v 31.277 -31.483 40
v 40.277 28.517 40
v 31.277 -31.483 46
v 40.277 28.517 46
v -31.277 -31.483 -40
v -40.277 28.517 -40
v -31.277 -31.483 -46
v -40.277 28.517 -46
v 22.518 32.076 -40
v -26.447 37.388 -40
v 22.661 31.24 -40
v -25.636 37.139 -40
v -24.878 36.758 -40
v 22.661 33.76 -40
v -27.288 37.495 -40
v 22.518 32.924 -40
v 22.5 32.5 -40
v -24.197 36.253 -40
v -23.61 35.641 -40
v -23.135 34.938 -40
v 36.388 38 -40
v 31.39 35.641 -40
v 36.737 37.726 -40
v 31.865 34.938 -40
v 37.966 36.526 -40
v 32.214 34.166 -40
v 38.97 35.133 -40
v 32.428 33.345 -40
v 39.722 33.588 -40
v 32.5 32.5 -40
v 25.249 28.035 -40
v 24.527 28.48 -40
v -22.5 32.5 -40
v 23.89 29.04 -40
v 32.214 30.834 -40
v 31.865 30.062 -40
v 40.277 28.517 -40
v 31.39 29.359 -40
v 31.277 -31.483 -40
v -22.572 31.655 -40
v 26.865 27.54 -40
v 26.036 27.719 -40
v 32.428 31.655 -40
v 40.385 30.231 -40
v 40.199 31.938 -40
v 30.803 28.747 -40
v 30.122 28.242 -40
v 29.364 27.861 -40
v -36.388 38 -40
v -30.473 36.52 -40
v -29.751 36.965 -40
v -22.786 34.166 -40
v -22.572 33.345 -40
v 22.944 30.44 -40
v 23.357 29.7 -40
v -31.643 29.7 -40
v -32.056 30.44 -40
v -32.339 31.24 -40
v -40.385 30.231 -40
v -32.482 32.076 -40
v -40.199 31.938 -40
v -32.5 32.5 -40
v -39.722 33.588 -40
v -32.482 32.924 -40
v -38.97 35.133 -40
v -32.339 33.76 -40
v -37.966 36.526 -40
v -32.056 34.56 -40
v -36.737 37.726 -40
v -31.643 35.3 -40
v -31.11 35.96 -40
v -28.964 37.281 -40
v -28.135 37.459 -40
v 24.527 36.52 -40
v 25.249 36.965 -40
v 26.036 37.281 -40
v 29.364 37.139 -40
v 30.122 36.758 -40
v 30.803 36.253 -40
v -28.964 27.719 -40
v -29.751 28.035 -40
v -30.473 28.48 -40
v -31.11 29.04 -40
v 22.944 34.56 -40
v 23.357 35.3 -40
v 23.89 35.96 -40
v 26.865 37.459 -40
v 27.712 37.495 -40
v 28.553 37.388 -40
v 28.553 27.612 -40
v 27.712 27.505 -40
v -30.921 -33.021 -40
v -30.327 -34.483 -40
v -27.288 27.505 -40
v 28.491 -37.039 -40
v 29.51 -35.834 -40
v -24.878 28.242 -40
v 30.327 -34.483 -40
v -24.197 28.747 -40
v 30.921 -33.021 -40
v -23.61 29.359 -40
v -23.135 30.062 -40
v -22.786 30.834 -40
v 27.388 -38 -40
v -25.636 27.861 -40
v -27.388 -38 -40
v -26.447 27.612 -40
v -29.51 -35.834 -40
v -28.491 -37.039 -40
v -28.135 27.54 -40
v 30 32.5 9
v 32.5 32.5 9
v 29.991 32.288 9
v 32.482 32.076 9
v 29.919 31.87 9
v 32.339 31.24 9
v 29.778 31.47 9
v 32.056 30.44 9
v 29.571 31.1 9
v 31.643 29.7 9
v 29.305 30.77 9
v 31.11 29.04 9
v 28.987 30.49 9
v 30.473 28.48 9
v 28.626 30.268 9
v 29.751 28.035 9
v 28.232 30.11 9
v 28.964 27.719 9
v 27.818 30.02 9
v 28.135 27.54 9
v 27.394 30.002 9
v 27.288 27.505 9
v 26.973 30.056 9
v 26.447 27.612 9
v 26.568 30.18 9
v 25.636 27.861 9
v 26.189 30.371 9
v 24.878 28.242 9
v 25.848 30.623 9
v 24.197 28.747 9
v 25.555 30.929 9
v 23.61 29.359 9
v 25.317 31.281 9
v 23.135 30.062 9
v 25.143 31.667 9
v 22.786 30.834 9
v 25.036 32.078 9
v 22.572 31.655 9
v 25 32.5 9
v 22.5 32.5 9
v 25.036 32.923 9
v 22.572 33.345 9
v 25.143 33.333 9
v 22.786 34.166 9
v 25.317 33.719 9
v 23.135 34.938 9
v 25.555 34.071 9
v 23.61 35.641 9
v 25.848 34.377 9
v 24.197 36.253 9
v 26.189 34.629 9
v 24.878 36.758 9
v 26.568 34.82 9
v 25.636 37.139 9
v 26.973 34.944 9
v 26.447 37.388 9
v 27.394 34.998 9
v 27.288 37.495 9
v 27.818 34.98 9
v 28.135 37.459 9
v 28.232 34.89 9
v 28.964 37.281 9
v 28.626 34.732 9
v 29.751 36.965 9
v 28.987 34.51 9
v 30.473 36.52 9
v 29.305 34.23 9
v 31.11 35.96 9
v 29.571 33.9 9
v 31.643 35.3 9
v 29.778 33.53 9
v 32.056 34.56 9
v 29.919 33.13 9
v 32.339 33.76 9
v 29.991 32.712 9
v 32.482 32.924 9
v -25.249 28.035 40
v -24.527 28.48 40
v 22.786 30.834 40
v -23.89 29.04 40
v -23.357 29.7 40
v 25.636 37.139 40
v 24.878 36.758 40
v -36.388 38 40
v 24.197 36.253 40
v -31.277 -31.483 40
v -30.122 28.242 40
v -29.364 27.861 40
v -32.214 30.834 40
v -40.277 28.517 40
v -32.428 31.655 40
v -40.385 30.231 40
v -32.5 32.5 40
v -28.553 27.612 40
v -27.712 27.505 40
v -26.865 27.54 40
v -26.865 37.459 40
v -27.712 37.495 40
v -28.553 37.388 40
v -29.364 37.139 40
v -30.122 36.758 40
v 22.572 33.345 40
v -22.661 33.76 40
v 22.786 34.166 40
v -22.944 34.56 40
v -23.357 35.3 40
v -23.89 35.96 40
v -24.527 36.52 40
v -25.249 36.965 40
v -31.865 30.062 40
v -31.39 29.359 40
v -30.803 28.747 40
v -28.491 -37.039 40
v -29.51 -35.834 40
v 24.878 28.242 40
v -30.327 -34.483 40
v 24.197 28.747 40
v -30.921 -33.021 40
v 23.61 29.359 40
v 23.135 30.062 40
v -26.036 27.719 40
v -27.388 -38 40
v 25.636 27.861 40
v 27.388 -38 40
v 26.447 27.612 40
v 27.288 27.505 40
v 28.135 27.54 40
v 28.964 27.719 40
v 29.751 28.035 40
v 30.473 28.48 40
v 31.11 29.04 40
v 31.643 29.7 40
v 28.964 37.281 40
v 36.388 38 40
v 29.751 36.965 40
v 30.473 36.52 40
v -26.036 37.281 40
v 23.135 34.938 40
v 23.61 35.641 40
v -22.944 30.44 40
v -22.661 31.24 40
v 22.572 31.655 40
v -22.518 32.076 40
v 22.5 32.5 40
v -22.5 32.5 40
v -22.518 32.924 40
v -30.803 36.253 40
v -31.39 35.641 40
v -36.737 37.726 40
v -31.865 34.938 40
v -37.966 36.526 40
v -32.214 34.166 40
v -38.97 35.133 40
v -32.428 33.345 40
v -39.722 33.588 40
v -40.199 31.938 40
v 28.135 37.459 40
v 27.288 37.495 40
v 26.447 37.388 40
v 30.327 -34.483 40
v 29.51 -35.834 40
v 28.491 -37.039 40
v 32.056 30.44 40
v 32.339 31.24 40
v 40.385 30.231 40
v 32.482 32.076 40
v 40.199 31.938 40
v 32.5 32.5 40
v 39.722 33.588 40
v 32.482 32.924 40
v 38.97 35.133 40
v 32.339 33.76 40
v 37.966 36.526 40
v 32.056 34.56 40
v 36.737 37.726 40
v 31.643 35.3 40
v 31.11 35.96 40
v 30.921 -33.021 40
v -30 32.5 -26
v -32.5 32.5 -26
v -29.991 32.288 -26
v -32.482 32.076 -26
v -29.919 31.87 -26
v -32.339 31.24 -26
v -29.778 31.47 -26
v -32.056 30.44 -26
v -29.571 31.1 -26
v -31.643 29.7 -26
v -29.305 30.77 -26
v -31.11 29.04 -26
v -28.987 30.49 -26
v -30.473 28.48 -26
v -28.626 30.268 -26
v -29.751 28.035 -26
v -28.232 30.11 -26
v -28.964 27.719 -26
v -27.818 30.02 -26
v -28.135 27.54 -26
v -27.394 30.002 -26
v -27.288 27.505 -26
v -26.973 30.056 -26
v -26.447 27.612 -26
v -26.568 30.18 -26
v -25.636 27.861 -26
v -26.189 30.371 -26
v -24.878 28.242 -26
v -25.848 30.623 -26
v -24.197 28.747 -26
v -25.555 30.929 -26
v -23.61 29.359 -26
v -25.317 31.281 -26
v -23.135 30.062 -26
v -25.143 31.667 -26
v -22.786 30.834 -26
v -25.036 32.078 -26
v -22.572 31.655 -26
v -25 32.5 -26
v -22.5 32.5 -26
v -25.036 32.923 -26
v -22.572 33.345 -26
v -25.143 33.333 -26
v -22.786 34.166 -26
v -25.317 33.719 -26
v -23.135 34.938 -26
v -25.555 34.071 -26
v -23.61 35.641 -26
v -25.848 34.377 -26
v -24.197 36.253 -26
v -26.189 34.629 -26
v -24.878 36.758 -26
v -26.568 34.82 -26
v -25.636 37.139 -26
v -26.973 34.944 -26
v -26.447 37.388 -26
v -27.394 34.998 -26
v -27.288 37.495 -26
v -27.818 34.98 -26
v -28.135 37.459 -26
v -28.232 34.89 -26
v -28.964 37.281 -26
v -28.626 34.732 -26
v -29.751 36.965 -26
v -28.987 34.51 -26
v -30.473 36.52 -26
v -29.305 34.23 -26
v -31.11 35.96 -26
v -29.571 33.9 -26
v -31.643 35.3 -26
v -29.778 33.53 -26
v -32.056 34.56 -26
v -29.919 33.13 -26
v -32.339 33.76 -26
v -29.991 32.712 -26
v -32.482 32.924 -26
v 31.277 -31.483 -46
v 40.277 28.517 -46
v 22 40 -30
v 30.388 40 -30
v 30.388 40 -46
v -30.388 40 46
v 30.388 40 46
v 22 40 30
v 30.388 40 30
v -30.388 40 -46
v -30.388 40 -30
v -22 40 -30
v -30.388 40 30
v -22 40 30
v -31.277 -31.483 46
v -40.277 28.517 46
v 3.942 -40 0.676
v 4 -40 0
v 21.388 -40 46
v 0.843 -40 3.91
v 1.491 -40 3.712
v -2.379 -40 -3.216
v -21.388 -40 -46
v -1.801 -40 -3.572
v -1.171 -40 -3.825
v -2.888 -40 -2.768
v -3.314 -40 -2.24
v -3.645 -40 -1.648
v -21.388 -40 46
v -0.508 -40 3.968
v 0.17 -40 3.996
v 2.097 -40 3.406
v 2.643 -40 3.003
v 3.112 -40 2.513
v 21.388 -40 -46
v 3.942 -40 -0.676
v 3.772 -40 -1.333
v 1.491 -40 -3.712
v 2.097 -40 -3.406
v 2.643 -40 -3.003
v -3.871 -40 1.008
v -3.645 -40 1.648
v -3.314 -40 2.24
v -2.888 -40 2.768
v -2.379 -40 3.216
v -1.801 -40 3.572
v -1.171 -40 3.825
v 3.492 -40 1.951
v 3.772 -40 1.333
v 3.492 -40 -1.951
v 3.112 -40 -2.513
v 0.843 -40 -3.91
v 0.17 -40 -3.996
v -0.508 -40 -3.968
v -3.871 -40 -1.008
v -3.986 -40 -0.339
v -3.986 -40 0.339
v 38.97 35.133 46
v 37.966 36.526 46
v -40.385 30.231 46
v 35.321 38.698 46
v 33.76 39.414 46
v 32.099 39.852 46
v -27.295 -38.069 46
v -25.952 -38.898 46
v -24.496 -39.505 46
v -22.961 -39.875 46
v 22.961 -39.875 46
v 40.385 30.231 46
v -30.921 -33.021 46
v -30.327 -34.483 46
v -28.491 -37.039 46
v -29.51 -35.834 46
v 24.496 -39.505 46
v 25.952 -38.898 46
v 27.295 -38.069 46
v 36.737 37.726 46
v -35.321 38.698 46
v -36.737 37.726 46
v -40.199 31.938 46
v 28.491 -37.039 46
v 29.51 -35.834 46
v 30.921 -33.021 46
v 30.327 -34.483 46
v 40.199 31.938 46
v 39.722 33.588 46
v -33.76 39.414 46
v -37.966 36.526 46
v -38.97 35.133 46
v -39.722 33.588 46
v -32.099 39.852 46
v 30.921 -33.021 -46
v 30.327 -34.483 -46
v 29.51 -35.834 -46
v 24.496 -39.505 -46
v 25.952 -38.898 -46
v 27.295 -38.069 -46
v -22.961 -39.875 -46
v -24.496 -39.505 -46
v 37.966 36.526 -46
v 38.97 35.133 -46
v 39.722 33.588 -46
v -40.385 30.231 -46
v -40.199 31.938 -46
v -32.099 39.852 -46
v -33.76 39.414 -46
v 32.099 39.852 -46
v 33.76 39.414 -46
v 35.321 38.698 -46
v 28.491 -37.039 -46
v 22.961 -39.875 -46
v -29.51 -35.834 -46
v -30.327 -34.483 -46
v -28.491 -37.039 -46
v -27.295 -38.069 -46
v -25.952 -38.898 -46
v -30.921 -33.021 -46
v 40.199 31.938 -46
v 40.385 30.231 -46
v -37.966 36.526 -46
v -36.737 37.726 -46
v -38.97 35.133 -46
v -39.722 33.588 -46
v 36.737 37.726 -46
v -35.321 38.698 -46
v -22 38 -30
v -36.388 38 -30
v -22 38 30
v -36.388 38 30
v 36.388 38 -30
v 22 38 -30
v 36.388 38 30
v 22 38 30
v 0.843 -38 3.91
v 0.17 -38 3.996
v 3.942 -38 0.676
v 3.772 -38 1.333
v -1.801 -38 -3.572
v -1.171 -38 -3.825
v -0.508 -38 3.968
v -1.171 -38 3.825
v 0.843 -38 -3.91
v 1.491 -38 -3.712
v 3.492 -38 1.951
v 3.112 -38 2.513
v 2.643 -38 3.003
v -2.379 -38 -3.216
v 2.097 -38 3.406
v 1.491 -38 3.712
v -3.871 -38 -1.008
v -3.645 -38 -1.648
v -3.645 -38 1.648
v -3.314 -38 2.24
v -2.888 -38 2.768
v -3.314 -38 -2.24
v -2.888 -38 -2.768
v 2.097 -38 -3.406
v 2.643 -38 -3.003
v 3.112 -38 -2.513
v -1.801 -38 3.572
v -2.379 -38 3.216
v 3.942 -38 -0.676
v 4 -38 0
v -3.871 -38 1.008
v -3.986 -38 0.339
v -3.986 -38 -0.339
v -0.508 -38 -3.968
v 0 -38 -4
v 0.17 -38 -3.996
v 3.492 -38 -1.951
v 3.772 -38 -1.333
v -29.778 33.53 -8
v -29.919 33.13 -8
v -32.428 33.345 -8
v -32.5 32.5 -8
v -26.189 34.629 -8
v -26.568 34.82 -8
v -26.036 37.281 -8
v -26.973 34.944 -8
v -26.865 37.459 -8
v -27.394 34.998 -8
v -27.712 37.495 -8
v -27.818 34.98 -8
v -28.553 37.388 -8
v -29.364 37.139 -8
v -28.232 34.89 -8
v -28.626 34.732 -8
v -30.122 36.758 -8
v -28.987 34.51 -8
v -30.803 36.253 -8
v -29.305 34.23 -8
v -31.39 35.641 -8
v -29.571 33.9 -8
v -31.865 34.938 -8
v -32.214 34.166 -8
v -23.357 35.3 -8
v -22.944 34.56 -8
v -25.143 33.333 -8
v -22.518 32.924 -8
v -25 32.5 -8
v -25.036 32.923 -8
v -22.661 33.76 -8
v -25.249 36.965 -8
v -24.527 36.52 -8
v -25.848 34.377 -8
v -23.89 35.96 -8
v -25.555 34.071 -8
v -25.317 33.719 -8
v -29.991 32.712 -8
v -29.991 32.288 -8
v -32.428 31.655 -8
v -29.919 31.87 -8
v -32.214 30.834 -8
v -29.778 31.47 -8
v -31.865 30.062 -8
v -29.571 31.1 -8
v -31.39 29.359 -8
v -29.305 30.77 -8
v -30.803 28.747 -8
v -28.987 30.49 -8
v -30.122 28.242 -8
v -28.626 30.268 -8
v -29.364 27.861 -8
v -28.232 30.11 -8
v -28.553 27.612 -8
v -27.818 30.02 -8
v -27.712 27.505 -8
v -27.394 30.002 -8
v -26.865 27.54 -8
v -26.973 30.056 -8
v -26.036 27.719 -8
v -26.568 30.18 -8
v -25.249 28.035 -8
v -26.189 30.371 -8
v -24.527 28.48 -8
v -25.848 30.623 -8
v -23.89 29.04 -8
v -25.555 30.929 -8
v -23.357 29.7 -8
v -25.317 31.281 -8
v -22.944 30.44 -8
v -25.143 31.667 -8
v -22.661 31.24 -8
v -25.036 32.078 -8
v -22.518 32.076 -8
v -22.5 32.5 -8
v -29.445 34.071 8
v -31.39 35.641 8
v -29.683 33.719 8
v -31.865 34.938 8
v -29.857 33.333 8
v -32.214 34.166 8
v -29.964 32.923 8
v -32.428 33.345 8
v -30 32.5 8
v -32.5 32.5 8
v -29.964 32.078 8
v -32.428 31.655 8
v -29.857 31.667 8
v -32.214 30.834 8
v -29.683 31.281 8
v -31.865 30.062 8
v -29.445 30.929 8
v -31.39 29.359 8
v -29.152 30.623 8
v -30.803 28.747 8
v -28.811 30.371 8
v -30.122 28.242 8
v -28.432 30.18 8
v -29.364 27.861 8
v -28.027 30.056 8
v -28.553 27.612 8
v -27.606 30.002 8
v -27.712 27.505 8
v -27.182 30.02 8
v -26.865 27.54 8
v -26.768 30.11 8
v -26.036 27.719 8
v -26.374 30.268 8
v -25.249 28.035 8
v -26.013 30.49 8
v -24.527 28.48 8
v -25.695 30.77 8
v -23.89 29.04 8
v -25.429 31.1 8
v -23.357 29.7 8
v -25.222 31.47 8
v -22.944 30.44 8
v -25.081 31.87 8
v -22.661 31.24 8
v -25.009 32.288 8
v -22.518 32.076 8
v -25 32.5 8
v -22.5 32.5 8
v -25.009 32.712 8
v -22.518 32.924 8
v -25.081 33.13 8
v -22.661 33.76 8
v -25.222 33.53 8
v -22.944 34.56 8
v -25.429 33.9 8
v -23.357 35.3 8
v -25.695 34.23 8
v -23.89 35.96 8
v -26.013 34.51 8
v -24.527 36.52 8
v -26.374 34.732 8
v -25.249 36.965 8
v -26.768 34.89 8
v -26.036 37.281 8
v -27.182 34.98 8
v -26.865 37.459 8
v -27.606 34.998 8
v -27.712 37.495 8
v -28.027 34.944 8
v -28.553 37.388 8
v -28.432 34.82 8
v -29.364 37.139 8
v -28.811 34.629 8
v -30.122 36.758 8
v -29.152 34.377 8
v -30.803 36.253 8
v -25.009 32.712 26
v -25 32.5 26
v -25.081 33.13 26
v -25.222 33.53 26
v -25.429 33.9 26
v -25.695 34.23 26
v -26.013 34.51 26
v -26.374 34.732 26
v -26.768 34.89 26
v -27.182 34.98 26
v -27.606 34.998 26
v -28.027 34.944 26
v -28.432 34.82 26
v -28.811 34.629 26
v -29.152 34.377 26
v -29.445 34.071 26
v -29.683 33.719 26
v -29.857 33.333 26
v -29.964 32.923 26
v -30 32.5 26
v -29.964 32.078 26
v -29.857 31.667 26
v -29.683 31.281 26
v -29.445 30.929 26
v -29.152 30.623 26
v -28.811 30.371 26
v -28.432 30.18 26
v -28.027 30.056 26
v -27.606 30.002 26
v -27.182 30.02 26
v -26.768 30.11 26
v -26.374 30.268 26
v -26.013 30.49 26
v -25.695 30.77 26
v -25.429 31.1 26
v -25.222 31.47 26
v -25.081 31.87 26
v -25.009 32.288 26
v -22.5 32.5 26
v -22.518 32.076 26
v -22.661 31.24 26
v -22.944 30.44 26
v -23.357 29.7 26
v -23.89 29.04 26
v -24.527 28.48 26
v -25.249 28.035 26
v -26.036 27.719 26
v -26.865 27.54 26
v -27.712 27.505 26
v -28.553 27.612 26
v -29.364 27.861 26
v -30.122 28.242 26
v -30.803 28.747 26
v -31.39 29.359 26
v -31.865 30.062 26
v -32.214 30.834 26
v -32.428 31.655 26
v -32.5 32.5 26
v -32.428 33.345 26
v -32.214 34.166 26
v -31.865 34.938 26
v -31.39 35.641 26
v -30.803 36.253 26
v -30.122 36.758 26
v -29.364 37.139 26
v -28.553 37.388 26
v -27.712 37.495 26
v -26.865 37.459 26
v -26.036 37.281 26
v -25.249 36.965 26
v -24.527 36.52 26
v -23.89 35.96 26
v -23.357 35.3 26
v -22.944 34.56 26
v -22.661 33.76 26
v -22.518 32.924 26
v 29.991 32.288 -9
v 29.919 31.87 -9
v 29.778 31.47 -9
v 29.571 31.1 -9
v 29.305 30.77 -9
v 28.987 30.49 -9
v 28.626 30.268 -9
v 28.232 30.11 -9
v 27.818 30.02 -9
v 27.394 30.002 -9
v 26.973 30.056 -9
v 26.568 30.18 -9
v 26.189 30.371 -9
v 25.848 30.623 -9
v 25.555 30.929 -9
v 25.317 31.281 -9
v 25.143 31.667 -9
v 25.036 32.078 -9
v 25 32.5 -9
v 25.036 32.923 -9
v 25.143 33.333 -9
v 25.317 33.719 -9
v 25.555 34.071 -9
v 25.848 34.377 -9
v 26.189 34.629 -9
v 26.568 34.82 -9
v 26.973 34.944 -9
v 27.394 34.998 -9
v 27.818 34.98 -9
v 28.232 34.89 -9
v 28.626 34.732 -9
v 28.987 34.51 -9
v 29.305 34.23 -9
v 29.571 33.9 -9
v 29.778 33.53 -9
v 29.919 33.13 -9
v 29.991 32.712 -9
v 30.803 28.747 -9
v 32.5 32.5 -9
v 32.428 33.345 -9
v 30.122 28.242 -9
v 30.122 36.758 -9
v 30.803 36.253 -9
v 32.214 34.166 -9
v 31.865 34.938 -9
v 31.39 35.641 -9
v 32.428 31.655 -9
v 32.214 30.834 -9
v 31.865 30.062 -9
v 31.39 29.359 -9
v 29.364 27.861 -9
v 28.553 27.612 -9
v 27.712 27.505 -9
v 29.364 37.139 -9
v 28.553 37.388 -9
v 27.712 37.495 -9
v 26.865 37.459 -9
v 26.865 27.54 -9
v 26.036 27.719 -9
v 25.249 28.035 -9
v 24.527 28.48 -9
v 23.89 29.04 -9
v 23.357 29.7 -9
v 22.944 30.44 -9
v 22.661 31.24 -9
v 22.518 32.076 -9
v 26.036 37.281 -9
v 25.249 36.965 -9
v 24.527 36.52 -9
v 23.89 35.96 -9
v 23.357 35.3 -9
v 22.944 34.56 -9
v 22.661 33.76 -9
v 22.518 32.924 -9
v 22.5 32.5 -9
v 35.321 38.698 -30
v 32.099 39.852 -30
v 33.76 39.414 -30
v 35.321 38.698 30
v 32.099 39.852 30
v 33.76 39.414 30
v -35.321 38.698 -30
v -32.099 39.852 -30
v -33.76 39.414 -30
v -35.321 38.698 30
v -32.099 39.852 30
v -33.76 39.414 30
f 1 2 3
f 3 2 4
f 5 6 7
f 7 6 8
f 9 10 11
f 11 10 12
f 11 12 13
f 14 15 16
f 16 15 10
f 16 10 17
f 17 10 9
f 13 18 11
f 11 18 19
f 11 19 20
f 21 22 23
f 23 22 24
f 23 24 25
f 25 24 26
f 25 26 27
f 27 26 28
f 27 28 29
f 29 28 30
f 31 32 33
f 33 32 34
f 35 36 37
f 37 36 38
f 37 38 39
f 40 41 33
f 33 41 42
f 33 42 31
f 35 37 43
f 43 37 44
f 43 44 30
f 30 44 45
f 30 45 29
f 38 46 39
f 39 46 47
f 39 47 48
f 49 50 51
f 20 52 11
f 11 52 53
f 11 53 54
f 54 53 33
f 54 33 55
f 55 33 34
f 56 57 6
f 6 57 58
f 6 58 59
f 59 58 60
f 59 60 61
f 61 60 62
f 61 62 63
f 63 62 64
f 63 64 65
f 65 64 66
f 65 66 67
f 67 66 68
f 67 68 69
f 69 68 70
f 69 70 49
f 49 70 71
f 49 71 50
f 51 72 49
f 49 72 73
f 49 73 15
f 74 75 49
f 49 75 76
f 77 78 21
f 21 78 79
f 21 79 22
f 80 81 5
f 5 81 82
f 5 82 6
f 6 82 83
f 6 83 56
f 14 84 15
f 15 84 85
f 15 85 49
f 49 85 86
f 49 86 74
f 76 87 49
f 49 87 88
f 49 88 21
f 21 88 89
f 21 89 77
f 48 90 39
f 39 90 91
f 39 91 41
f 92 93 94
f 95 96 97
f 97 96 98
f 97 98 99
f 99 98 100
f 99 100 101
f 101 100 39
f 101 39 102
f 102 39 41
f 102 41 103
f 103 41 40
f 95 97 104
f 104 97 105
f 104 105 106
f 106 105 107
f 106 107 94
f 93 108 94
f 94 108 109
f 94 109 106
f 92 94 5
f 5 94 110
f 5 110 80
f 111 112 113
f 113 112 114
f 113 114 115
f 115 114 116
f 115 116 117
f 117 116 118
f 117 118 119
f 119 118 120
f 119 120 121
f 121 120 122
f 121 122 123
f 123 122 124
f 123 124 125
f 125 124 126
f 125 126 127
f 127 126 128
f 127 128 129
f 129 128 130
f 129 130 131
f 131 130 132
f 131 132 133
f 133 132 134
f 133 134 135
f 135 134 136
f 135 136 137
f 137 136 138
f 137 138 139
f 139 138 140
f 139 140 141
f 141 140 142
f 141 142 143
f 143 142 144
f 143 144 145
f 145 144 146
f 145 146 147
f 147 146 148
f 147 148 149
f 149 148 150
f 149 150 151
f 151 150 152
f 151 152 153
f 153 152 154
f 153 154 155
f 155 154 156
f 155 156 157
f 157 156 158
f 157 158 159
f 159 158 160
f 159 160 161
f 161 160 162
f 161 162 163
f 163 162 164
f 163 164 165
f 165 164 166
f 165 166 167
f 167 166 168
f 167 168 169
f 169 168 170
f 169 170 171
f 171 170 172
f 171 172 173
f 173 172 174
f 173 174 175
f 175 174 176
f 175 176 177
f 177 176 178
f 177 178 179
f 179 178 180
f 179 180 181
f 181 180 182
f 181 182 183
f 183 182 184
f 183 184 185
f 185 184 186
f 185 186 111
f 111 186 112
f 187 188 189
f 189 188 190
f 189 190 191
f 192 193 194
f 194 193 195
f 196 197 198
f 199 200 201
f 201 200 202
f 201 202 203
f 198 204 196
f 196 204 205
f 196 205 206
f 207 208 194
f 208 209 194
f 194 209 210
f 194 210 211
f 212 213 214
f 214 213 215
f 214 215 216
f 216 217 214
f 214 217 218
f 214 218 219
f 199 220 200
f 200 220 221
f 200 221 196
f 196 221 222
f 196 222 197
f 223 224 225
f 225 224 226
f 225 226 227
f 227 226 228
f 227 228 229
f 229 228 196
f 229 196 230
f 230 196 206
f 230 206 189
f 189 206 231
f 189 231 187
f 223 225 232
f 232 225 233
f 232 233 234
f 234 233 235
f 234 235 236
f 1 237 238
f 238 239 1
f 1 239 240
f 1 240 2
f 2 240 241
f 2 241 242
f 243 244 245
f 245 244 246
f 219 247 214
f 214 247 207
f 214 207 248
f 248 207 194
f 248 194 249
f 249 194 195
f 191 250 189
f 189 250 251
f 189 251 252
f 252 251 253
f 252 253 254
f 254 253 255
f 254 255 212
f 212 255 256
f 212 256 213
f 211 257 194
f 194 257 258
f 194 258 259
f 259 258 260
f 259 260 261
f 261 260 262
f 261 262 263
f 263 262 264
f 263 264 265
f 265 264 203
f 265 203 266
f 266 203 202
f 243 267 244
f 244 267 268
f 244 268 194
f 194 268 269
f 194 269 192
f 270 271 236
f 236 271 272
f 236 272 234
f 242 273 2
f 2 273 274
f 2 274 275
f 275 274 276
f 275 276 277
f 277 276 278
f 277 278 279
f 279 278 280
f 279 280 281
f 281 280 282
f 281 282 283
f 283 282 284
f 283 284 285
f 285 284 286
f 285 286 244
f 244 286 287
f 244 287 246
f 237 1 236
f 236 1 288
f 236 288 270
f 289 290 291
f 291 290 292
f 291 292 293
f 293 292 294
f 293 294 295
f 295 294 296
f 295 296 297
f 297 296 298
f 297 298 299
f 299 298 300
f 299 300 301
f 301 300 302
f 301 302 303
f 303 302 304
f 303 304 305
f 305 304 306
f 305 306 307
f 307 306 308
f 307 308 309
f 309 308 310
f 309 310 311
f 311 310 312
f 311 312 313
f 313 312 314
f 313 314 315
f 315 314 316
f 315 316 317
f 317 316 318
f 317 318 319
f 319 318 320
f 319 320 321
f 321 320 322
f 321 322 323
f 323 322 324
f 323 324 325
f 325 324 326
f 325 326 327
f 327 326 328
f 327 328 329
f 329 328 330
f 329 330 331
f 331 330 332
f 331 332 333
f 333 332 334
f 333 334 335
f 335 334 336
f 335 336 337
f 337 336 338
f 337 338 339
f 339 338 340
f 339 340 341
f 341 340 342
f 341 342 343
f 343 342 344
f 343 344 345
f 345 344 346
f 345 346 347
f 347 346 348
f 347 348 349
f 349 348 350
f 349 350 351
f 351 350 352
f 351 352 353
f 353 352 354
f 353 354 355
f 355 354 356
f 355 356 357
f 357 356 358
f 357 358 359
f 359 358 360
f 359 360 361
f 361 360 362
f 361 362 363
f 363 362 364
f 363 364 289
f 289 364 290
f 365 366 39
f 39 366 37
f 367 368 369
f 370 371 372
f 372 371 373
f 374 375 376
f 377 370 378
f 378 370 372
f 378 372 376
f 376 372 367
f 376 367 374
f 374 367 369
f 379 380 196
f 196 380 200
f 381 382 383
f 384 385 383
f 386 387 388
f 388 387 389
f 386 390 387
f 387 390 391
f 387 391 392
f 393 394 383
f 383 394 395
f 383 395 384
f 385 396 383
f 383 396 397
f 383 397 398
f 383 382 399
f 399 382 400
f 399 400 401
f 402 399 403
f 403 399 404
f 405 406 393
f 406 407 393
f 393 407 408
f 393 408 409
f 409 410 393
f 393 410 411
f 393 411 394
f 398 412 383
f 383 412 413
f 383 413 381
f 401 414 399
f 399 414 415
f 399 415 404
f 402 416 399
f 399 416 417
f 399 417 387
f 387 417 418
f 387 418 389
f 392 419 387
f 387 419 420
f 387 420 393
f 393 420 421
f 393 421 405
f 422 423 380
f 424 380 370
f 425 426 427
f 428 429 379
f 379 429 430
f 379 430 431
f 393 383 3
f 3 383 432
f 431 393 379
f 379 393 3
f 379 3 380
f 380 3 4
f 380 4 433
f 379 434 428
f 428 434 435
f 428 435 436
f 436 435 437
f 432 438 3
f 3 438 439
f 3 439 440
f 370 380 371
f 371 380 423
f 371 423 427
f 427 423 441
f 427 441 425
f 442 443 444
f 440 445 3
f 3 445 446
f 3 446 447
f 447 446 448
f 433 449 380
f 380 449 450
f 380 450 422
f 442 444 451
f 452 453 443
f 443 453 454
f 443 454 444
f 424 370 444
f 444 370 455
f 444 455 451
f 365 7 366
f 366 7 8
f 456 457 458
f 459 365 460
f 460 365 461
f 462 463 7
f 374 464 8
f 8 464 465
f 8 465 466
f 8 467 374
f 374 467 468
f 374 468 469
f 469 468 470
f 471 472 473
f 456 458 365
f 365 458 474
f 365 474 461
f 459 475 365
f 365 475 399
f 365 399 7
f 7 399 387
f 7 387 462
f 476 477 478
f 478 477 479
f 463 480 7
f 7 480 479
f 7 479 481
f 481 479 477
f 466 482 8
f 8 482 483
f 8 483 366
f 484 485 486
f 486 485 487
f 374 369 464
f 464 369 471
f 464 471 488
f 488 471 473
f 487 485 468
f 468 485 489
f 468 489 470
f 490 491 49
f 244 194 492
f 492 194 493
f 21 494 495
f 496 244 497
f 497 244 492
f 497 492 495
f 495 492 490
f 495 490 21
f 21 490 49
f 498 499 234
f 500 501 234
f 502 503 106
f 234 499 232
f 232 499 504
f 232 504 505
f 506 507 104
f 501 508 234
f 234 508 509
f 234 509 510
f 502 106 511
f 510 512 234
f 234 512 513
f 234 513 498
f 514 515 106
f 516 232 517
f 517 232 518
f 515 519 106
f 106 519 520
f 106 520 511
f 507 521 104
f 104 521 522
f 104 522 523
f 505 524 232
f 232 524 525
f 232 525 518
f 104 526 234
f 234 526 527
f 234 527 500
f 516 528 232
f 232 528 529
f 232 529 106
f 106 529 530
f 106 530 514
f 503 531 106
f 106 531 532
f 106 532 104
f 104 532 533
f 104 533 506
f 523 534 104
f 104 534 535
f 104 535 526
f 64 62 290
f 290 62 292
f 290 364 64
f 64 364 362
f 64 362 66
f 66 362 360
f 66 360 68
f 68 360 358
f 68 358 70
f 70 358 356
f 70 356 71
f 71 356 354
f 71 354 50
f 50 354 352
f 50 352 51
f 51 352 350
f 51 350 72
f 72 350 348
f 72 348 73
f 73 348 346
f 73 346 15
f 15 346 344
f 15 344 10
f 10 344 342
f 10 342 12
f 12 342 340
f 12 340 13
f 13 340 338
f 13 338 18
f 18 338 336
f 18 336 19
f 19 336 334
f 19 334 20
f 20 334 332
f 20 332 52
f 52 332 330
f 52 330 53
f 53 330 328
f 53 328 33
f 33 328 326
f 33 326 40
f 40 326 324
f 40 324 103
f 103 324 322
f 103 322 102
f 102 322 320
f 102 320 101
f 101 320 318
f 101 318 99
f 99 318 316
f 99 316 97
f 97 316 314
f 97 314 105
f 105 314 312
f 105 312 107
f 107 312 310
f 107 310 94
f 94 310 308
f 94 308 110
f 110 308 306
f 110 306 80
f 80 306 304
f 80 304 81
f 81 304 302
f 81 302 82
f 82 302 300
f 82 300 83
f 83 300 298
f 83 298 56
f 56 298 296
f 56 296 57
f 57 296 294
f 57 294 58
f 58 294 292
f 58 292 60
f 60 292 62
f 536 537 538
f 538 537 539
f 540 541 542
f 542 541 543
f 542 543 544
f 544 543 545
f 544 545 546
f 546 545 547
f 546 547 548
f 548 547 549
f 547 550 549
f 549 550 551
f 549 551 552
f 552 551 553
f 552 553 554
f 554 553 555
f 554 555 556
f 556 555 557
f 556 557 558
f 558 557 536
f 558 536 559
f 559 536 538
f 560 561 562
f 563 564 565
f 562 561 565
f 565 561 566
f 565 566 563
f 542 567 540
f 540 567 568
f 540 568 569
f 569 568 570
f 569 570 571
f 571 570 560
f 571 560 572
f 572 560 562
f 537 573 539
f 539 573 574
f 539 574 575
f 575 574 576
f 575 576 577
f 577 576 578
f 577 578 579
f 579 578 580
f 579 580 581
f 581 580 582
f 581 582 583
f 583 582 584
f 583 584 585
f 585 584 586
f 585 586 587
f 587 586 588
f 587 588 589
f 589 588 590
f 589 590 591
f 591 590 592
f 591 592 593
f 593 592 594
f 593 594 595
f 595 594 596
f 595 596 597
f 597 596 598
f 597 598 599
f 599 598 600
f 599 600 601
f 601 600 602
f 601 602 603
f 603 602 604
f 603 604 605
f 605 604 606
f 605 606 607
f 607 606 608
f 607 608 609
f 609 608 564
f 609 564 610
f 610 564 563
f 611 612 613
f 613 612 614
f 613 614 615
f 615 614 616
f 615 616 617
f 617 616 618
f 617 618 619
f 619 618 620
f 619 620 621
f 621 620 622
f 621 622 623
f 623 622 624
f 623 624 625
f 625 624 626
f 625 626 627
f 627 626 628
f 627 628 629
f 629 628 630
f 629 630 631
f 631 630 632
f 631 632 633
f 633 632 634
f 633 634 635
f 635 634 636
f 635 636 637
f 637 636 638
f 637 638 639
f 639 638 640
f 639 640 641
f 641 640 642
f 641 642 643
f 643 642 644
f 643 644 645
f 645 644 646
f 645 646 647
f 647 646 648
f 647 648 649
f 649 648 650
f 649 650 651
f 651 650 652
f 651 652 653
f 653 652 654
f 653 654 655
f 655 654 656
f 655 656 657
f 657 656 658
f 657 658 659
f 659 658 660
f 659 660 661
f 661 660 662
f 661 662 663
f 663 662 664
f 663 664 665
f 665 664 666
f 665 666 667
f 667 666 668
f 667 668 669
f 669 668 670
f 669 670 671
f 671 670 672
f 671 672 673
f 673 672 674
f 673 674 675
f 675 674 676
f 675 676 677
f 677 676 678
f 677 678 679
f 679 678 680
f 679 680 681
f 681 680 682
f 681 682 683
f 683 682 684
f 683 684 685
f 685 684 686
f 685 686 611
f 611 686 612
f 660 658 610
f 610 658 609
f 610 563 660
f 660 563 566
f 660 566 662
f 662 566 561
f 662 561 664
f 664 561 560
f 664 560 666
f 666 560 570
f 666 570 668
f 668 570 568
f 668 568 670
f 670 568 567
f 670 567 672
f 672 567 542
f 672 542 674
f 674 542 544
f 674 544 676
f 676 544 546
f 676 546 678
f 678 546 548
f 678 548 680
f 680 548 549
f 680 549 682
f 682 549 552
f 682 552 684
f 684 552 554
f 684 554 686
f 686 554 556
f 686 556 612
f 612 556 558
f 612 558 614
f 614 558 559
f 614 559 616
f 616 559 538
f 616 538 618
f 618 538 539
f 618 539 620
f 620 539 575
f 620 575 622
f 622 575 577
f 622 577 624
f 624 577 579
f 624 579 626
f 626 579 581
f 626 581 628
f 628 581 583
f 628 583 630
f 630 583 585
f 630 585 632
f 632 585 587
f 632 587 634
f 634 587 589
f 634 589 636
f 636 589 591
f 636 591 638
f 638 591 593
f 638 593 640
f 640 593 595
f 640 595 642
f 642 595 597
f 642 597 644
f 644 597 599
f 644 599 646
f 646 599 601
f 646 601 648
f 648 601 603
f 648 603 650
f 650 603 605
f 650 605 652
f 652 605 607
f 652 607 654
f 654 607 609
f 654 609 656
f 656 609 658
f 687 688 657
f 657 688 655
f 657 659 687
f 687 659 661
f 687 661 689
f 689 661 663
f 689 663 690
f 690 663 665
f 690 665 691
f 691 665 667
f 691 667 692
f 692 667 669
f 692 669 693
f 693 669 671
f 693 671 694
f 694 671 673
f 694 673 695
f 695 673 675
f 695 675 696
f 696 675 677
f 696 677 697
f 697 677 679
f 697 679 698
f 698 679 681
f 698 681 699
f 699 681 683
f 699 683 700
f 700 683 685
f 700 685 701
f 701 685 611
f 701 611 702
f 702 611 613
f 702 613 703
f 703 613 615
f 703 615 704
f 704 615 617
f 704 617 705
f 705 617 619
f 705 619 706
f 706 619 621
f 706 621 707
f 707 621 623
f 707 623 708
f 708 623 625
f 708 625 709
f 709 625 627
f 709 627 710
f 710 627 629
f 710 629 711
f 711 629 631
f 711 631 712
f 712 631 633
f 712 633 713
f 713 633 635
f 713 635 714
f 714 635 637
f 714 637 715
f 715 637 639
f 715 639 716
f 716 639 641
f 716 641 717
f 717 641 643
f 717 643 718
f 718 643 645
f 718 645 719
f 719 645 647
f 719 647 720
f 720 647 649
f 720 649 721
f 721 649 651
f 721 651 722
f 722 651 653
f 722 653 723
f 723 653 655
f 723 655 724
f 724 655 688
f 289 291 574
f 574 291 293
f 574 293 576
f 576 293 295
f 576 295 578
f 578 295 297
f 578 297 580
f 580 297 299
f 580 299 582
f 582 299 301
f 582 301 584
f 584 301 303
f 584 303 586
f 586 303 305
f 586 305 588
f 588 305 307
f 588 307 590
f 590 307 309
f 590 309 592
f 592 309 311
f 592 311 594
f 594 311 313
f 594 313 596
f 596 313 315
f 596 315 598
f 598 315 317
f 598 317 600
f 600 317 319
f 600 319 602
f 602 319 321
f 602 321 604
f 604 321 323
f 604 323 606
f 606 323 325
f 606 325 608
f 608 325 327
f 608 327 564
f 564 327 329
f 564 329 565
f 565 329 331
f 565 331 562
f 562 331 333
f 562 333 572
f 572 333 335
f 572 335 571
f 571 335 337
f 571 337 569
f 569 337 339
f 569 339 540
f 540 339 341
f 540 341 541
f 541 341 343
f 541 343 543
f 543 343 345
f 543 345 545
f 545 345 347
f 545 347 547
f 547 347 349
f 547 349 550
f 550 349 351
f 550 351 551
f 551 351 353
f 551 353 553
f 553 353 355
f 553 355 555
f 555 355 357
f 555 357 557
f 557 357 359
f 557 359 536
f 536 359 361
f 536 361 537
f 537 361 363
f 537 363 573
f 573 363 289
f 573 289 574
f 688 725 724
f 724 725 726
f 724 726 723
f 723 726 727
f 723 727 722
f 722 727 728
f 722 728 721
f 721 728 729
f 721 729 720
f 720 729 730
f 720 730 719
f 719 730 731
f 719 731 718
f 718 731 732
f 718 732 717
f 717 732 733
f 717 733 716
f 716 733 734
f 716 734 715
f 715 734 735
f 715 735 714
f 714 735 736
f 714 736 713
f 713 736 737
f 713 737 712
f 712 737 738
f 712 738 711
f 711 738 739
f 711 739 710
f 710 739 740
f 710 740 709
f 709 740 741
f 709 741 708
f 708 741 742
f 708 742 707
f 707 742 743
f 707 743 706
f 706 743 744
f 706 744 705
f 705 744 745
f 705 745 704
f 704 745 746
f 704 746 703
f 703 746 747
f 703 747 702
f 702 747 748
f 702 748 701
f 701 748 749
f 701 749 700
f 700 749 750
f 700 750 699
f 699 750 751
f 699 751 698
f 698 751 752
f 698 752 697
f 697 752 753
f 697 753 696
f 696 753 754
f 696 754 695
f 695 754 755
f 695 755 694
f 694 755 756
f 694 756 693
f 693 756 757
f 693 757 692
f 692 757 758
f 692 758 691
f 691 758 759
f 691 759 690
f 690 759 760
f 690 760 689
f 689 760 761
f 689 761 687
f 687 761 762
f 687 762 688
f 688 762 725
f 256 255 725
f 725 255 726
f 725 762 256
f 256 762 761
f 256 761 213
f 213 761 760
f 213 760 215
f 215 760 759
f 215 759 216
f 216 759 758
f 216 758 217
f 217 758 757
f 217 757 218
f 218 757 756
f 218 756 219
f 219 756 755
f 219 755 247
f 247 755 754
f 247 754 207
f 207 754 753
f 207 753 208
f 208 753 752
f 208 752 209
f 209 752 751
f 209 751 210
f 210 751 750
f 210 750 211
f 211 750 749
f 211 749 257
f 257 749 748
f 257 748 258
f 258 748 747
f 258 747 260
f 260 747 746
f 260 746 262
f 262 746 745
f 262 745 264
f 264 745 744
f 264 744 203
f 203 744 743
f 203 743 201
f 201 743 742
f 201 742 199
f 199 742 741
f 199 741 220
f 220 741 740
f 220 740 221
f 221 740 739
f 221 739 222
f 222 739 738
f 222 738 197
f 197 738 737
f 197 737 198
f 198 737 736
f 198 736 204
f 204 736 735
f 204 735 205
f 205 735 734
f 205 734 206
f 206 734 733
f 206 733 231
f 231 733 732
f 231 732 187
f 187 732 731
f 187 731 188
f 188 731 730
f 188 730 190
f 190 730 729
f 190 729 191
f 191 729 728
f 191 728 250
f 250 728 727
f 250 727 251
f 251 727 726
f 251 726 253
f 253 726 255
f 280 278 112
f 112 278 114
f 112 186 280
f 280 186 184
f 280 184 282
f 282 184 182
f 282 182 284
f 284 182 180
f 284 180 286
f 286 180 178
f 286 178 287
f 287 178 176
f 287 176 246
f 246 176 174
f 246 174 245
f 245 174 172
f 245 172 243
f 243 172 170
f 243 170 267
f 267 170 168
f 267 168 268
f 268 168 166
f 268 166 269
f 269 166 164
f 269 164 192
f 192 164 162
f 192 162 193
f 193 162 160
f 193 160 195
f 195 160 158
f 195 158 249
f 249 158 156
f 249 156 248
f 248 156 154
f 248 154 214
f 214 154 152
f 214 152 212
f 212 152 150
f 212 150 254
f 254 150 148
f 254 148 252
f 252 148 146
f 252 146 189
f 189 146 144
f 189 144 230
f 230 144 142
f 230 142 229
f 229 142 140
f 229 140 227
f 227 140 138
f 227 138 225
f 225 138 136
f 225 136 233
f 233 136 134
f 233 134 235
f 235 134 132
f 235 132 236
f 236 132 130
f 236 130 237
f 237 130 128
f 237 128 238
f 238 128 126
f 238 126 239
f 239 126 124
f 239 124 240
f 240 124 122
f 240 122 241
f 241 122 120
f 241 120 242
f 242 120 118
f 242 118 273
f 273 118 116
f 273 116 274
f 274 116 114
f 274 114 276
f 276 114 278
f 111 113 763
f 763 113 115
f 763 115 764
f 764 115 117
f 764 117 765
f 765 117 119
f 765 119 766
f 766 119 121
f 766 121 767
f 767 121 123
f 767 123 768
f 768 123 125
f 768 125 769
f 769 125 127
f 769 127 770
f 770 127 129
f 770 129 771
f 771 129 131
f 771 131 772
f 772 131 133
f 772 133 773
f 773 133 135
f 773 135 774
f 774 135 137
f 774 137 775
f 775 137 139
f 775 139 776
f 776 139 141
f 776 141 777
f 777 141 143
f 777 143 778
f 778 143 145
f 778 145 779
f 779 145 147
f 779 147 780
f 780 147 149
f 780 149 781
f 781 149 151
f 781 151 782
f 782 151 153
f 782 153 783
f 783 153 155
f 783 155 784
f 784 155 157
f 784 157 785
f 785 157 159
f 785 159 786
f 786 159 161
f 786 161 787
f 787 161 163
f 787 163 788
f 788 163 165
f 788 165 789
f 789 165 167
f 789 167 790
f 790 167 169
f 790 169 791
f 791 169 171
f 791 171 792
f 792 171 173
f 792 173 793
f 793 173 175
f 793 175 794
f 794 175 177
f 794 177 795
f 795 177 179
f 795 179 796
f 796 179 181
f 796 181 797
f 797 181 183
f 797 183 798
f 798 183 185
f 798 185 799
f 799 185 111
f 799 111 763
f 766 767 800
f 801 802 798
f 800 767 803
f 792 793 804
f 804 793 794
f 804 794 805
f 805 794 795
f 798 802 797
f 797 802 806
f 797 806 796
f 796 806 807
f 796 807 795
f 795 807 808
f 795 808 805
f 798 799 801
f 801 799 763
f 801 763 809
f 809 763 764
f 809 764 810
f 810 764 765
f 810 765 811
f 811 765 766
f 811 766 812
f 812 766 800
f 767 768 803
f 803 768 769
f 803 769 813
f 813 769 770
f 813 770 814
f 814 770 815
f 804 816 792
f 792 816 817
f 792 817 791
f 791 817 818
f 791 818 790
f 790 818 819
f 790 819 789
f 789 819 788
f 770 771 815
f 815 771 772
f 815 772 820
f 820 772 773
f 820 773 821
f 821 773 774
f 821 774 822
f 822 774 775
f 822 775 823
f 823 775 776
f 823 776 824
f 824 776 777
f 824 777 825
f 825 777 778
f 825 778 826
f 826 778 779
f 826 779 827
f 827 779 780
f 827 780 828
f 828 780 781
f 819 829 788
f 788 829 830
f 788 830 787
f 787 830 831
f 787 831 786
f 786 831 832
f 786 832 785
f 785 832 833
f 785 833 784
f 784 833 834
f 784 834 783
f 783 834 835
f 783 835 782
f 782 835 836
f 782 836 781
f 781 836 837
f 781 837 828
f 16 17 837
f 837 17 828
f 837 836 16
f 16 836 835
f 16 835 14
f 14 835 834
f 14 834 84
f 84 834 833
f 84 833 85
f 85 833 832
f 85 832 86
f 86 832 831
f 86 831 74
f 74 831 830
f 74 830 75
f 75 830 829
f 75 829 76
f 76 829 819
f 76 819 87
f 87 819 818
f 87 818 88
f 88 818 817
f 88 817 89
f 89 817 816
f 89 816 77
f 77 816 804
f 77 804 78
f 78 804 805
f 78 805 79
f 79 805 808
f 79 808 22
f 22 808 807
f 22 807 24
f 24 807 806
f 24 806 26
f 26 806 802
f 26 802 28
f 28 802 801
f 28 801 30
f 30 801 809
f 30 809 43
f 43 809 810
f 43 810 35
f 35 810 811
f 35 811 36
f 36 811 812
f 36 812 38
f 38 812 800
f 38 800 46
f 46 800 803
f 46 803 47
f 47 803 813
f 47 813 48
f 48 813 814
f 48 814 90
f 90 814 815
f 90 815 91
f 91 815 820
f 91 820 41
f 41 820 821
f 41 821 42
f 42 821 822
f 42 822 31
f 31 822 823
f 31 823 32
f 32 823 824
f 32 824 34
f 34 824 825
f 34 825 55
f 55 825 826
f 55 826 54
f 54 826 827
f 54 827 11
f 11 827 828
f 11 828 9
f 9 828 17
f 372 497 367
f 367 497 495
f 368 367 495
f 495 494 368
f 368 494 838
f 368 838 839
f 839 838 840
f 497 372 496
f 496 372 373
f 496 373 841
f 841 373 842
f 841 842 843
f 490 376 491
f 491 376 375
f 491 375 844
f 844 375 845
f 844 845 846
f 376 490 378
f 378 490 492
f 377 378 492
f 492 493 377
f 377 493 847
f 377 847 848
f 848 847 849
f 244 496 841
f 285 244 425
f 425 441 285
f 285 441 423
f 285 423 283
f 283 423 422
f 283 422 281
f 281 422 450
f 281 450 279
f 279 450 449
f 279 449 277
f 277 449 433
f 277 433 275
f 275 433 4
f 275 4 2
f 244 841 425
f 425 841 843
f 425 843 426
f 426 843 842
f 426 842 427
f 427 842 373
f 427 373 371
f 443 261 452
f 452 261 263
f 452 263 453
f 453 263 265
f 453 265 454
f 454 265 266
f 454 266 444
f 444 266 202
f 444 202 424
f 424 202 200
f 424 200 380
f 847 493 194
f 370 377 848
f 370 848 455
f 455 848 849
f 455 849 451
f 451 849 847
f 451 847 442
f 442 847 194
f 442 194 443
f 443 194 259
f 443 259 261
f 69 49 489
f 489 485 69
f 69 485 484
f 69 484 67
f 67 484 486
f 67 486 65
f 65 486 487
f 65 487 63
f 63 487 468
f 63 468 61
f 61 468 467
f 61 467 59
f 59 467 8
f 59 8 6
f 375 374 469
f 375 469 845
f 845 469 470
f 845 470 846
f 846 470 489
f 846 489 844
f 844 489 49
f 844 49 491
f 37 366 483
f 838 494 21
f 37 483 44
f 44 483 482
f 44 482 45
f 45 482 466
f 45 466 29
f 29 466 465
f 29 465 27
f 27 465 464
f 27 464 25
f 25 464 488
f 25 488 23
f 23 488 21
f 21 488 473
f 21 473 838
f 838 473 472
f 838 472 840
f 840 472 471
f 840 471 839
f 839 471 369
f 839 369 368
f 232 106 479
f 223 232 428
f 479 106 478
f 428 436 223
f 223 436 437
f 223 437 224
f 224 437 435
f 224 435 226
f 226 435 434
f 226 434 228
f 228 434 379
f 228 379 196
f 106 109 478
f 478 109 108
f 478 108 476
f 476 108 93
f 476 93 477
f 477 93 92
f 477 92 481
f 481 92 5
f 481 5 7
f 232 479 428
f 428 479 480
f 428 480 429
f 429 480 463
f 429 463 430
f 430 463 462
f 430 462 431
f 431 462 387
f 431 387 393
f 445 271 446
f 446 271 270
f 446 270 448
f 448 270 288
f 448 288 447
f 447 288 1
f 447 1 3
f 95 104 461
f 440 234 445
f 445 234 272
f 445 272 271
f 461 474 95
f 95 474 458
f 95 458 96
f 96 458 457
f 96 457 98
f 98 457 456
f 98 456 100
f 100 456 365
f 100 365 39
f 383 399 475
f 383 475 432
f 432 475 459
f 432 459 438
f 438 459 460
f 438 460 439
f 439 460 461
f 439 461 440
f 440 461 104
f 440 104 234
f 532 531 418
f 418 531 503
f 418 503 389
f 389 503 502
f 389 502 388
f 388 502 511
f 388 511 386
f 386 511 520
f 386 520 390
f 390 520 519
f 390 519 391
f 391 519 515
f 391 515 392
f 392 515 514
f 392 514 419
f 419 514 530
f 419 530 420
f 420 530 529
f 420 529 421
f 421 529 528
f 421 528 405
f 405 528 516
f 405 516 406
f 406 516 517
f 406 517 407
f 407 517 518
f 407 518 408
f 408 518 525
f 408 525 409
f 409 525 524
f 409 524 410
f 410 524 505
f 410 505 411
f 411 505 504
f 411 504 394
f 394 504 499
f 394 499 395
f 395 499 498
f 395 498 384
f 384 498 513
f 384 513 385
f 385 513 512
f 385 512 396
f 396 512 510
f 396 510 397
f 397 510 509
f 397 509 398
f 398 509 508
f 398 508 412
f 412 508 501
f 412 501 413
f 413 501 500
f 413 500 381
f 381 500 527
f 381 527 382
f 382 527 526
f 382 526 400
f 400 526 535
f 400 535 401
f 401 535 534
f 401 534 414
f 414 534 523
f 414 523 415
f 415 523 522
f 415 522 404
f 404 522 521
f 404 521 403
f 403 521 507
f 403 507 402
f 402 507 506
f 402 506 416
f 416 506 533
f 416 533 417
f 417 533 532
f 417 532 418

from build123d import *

# Parameters (mm, degrees)
BOSS_EXTRUDE1_DEPTH = 46
SKETCH4_W           = 80
SKETCH4_H           = 76
CUT_EXTRUDE1_DEPTH  = 46
SKETCH5_R           = 5
BOSS_EXTRUDE2_DEPTH = 8
SKETCH6_R           = 2.5
BOSS_EXTRUDE3_DEPTH = 18
SKETCH8_R           = 2.5
BOSS_EXTRUDE4_DEPTH = 18
SKETCH9_R           = 5
BOSS_EXTRUDE5_DEPTH = 14
BOSS_EXTRUDE6_START = 14
SKETCH10_R          = 5
BOSS_EXTRUDE6_DEPTH = 14
SKETCH11_R          = 2.5
BOSS_EXTRUDE7_DEPTH = 9
SKETCH12_R          = 5
BOSS_EXTRUDE8_DEPTH = 31
BOSS_EXTRUDE9_START = 31
SKETCH13_R          = 5
BOSS_EXTRUDE9_DEPTH = 31
SKETCH14_W          = 20
SKETCH14_H          = 60
CUT_EXTRUDE2_DEPTH  = 2.2
FILLET1_R           = 10
FILLET2_R           = 10
SKETCH15_R          = 4
CUT_EXTRUDE3_DEPTH  = 2.2


with BuildPart() as part:
    # Sketch3 → Boss-Extrude1 (new, symmetric)
    with BuildSketch(Plane.XY):
        Polygon((42, 40), (-42, 40), (-30, -40), (30, -40), align=None)
    extrude(amount=BOSS_EXTRUDE1_DEPTH, both=True)

    # Sketch4 → Cut-Extrude1 (cut, symmetric)
    with BuildSketch(Plane(origin=(0, 0, 0), x_dir=(0, 0, -1), z_dir=(1, 0, 0))):
        Rectangle(SKETCH4_W, SKETCH4_H)
    extrude(amount=CUT_EXTRUDE1_DEPTH, both=True, mode=Mode.SUBTRACT)



with BuildPart() as body_2:
    # Sketch5 → Boss-Extrude2 (new, symmetric)
    with BuildSketch(Plane.XY):
        with Locations((-27.5, 32.5)):
            Circle(SKETCH5_R)
    extrude(amount=BOSS_EXTRUDE2_DEPTH, both=True)

    # Sketch6 → Boss-Extrude3 (add)
    with BuildSketch(Plane.XY.offset(8)):
        with Locations((-27.5, 32.5)):
            Circle(SKETCH6_R)
    extrude(amount=BOSS_EXTRUDE3_DEPTH)

    # Sketch8 → Boss-Extrude4 (add)
    with BuildSketch(Plane(origin=(0, 0, -8), x_dir=(-1, 0, 0), z_dir=(0, 0, -1))):
        with Locations(Location((27.5, 32.5, 0), (0, 0, 180))):
            Circle(SKETCH8_R)
    extrude(amount=BOSS_EXTRUDE4_DEPTH)


with BuildPart() as part_1:
    add(part.part)

    add(body_2.part)  # Boss-Extrude5 merges body 2
    # Sketch9 → Boss-Extrude5 (add)
    with BuildSketch(Plane(origin=(0, 0, -26), x_dir=(-1, 0, 0), z_dir=(0, 0, -1))):
        with Locations(Location((27.5, 32.5, 0), (0, 0, 180))):
            Circle(SKETCH9_R)
    extrude(amount=BOSS_EXTRUDE5_DEPTH)

    # Sketch10 → Boss-Extrude6 (add)
    with BuildSketch(Plane.XY.offset(26).offset(BOSS_EXTRUDE6_START)):
        with Locations((-27.5, 32.5)):
            Circle(SKETCH10_R)
    extrude(amount=-BOSS_EXTRUDE6_DEPTH)



with BuildPart() as body_2_2:
    # Sketch11 → Boss-Extrude7 (new, symmetric)
    with BuildSketch(Plane.XY):
        with Locations((27.5, 32.5)):
            Circle(SKETCH11_R)
    extrude(amount=BOSS_EXTRUDE7_DEPTH, both=True)


with BuildPart() as part_2:
    add(part_1.part)

    add(body_2_2.part)  # Boss-Extrude8 merges body 2 2
    # Sketch12 → Boss-Extrude8 (add)
    with BuildSketch(Plane.XY.offset(9)):
        with Locations(Location((27.5, 32.5, 0), (0, 0, 180))):
            Circle(SKETCH12_R)
    extrude(amount=BOSS_EXTRUDE8_DEPTH)

    # Sketch13 → Boss-Extrude9 (add)
    with BuildSketch(Plane(origin=(0, 0, -9), x_dir=(-1, 0, 0), z_dir=(0, 0, -1)).offset(BOSS_EXTRUDE9_START)):
        with Locations((-27.5, 32.5)):
            Circle(SKETCH13_R)
    extrude(amount=-BOSS_EXTRUDE9_DEPTH)

    # Sketch14 → Cut-Extrude2 (cut)
    with BuildSketch(Plane(origin=(0, 40, 0), x_dir=(1, 0, 0), z_dir=(0, 1, 0))):
        with Locations((32, 0)):
            Rectangle(SKETCH14_W, SKETCH14_H)
        with Locations((-32, 0)):
            Rectangle(SKETCH14_W, SKETCH14_H)
    extrude(amount=-CUT_EXTRUDE2_DEPTH, mode=Mode.SUBTRACT)

    # Fillet1
    fillet1_edges = [part_2.edges().sort_by_distance(p)[0] for p in [
        (42, 40, 38),
        (-42, 40, 38),
        (-42, 40, -38),
        (42, 40, -38),
    ]]
    fillet(fillet1_edges, radius=FILLET1_R)

    # Fillet2
    # the kernel refuses this fillet: 10 mm, written as the material it takes off along each edge
    with BuildSketch(Plane(origin=(-30, -40, -67.52968552), x_dir=(-0.1483404529302443, 0.9889363528682976, 0), z_dir=(0, 0, 1)), Plane(origin=(30, -40, 67.52968552), x_dir=(0.14834045293024473, 0.9889363528682976, 0), z_dir=(0, 0, -1))) as fillet2_piece_1:
        with BuildLine():
            CenterArc((FILLET2_R * 0.861187420808, -FILLET2_R), FILLET2_R, 90, 81.46923439)
            Line((-FILLET2_R * 0.12774893206, -FILLET2_R * 0.85165954707), (0, 0))
            Line((0, 0), (FILLET2_R * 0.861187420808, 0))
        make_face()
    extrude(amount=135.05937104, mode=Mode.SUBTRACT)

    # Sketch15 → Cut-Extrude3 (cut)
    with BuildSketch(Plane.XZ.offset(40)):
        Circle(SKETCH15_R)
    extrude(amount=-CUT_EXTRUDE3_DEPTH, mode=Mode.SUBTRACT)


solid = part_2.part
